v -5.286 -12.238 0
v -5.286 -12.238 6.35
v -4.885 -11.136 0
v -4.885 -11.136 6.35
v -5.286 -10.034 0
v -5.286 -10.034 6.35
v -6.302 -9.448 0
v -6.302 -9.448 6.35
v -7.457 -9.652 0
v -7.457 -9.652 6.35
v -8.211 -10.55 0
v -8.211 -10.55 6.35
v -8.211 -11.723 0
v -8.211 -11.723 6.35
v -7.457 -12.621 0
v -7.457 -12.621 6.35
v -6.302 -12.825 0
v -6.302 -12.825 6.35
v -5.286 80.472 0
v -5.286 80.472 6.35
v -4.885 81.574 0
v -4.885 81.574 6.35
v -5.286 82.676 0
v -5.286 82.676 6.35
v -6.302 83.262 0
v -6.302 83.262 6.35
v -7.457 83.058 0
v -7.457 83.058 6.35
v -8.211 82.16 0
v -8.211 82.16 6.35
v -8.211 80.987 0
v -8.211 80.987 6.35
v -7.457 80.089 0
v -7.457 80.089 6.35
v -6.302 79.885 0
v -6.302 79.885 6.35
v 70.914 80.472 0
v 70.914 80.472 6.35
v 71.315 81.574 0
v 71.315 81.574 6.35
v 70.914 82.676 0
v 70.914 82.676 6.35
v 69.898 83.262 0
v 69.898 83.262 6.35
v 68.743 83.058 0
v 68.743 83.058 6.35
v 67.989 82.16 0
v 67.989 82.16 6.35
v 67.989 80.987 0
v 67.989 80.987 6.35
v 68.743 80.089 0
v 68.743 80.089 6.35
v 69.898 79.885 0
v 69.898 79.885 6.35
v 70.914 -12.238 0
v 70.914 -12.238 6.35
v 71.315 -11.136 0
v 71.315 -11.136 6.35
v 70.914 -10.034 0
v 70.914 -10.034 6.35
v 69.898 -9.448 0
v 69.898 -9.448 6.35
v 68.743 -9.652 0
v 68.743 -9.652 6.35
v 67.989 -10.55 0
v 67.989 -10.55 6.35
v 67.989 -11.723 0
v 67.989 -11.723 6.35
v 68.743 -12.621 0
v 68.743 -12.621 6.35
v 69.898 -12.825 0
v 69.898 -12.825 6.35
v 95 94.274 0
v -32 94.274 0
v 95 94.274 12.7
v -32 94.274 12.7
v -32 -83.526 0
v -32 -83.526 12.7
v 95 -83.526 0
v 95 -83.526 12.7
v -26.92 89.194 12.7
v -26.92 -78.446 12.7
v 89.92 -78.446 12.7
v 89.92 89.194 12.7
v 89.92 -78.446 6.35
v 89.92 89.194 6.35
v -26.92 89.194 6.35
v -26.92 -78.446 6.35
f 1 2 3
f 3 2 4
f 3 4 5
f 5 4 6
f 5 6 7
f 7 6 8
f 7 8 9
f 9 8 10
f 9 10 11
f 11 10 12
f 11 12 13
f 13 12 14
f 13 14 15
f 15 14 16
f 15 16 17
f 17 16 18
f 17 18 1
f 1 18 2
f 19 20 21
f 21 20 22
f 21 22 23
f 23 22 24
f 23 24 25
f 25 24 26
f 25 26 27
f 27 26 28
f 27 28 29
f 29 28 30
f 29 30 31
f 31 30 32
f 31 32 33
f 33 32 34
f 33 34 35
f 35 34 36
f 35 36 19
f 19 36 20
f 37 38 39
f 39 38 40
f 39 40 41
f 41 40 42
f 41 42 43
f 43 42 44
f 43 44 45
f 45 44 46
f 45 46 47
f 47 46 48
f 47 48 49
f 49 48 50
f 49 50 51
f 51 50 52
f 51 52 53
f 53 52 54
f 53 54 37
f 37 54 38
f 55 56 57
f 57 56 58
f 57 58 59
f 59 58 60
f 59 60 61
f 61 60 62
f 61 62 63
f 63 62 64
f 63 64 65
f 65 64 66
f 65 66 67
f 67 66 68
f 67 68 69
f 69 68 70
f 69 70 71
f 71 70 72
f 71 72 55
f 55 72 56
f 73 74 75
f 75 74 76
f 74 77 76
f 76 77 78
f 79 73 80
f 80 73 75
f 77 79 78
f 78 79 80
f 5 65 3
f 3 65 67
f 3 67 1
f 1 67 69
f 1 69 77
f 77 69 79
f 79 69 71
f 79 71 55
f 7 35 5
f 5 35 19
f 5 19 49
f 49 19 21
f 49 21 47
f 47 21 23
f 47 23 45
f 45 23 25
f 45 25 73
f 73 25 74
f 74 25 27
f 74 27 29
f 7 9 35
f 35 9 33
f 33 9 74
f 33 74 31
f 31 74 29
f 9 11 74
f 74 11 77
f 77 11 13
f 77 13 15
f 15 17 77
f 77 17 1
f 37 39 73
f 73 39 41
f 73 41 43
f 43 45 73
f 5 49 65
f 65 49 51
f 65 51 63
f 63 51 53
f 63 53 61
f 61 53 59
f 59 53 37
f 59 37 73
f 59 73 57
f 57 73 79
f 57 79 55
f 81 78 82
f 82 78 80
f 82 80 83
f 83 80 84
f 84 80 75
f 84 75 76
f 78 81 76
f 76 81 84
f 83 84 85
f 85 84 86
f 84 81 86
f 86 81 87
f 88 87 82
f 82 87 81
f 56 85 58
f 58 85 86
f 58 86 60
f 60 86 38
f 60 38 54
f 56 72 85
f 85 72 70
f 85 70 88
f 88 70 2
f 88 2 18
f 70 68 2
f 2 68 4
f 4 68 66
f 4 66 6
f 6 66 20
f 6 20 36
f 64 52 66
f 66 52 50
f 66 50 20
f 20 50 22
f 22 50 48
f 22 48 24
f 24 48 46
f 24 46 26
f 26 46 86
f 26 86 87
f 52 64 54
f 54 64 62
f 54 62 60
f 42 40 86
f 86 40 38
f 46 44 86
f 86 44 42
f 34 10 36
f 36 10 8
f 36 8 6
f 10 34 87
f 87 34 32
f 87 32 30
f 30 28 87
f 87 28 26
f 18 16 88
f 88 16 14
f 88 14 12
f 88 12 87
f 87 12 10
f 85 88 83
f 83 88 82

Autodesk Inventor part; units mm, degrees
ref_plane "YZ Plane" through (0, 0, 0) normal (1, 0, 0) x (0, 1, 0)
ref_plane "XZ Plane" through (0, 0, 0) normal (0, 1, 0) x (-1, 0, 0)
ref_plane "XY Plane" through (0, 0, 0) normal (0, 0, 1) x (1, 0, 0)
sketch "Sketch1" plane through (0, 0, 0) normal (0, 0, 1) x (1, 0, 0)
  line L0 (-31.9998, 94.2737) -> (95.0002, 94.2737)
  line L1 (95.0002, 94.2737) -> (95.0002, -83.5263)
  line L2 (95.0002, -83.5263) -> (-31.9998, -83.5263)
  line L3 (-31.9998, -83.5263) -> (-31.9998, 94.2737)
  point P0 (0, 0)
  dimension "d0" = 127
  dimension "d1" = 177.8
ref_plane "Work Plane1" through (0, 0, 6.35) normal (0, 0, 1) x (1, 0, 0)
sketch "Sketch3" plane through (0, 0, 6.35) normal (0, 0, 1) x (1, 0, 0)
  circle A0 centre (-6.5998, 81.5737) radius 1.7145
  line L0 (-57.3998, 94.2737) -> (-57.3998, -108.9263) projected
  circle A1 centre (69.6002, 81.5737) radius 1.7145
  circle A2 centre (-6.5998, -11.1363) radius 1.7145
  circle A3 centre (69.6002, -11.1363) radius 1.7145
  line L1 (95.0002, -108.9263) -> (95.0002, 94.2737) projected
  line L2 (95.0002, 94.2737) -> (-57.3998, 94.2737) projected
  point P0 (0, 0)
  dimension "d4" = 3.429
  dimension "d7" = 50.8
  dimension "d14" = 3.429
  dimension "d15" = 3.429
  dimension "d16" = 3.429
  dimension "d17" = 76.2
  dimension "d18" = 92.71
  dimension "d19" = 92.71
  dimension "d20" = 76.2
  dimension "d21" = 25.4
  dimension "d22" = 12.7
  dimension "d23" = 12.7
extrude "Extrusion3" add sketch "Sketch1" along normal blind 6.35
extrude "Extrusion4" cut sketch "Sketch3" against normal blind 6.35
sketch "Sketch4" plane through (0, 0, 6.35) normal (0, 0, 1) x (1, 0, 0)
  point P0 (0, 0)
sketch "Sketch6" plane through (0, 0, 6.35) normal (0, 0, 1) x (1, 0, 0)
  line L0 (-31.9998, 94.2737) -> (-31.9998, -83.5263) projected
  line L1 (-31.9998, 94.2737) -> (-26.9198, 94.2737)
  line L2 (-26.9198, 94.2737) -> (-26.9198, -83.5263)
  line L3 (-26.9198, -83.5263) -> (-31.9998, -83.5263)
  line L4 (-31.9998, -83.5263) -> (-31.9998, 94.2737)
  line L5 (95.0002, -83.5263) -> (95.0002, 94.2737) projected
  line L6 (-31.9998, -83.5263) -> (95.0002, -83.5263) projected
  line L7 (95.0002, 94.2737) -> (89.9202, 94.2737)
  line L8 (89.9202, 94.2737) -> (89.9202, -83.5263)
  line L9 (89.9202, -83.5263) -> (95.0002, -83.5263)
  line L10 (95.0002, -83.5263) -> (95.0002, 94.2737)
  line L11 (-26.9198, 94.2737) -> (89.9202, 94.2737)
  line L12 (89.9202, 94.2737) -> (89.9202, 89.1937)
  line L13 (89.9202, 89.1937) -> (-26.9198, 89.1937)
  line L14 (-26.9198, 89.1937) -> (-26.9198, 94.2737)
  line L15 (-26.9198, -83.5263) -> (89.9202, -83.5263)
  line L16 (89.9202, -83.5263) -> (89.9202, -78.4463)
  line L17 (89.9202, -78.4463) -> (-26.9198, -78.4463)
  line L18 (-26.9198, -78.4463) -> (-26.9198, -83.5263)
  point P0 (0, 0)
  dimension "d34" = 5.08
  dimension "d35" = 5.08
  dimension "d36" = 5.08
  dimension "d37" = 5.08
extrude "Extrusion5" add sketch "Sketch6" along normal blind 6.35 contours L1 L2 L3 L0
sketch "Sketch7" plane through (0, 0, 6.35) normal (0, 0, 1) x (1, 0, 0)
  line L0 (-26.9198, 94.2737) -> (-31.9998, 94.2737) projected
  line L1 (95.0002, -83.5263) -> (95.0002, 94.2737) projected
  line L2 (-26.9198, 94.2737) -> (95.0002, 94.2737)
  line L3 (95.0002, 94.2737) -> (95.0002, 89.1937)
  line L4 (95.0002, 89.1937) -> (-26.9198, 89.1937)
  line L5 (-26.9198, 89.1937) -> (-26.9198, 94.2737)
  point P0 (0, 0)
  dimension "d40" = 5.08
extrude "Extrusion6" add sketch "Sketch7" along normal blind 6.35
sketch "Sketch8" plane through (0, 0, 6.35) normal (0, 0, 1) x (1, 0, 0)
  line L0 (95.0002, 89.1937) -> (95.0002, 94.2737) projected
  line L1 (95.0002, 89.1937) -> (89.9202, 89.1937)
  line L2 (89.9202, 89.1937) -> (89.9202, -83.5263)
  line L3 (89.9202, -83.5263) -> (95.0002, -83.5263)
  line L4 (95.0002, -83.5263) -> (95.0002, 89.1937)
  point P0 (0, 0)
  dimension "d43" = 5.08
  dimension "d44" = 172.72
extrude "Extrusion7" add sketch "Sketch8" along normal blind 6.35
sketch "Sketch9" plane through (0, 0, 6.35) normal (0, 0, 1) x (1, 0, 0)
  line L0 (89.9202, 89.1937) -> (89.9202, -83.5263) projected
  line L1 (89.9202, -83.5263) -> (-26.9198, -83.5263)
  line L2 (-26.9198, -83.5263) -> (-26.9198, -78.4463)
  line L3 (-26.9198, -78.4463) -> (89.9202, -78.4463)
  line L4 (89.9202, -78.4463) -> (89.9202, -83.5263)
  point P0 (0, 0)
  dimension "d47" = 116.84
  dimension "d48" = 5.08
extrude "Extrusion8" add sketch "Sketch9" along normal blind 6.35
properties part number "Robot_Base"
